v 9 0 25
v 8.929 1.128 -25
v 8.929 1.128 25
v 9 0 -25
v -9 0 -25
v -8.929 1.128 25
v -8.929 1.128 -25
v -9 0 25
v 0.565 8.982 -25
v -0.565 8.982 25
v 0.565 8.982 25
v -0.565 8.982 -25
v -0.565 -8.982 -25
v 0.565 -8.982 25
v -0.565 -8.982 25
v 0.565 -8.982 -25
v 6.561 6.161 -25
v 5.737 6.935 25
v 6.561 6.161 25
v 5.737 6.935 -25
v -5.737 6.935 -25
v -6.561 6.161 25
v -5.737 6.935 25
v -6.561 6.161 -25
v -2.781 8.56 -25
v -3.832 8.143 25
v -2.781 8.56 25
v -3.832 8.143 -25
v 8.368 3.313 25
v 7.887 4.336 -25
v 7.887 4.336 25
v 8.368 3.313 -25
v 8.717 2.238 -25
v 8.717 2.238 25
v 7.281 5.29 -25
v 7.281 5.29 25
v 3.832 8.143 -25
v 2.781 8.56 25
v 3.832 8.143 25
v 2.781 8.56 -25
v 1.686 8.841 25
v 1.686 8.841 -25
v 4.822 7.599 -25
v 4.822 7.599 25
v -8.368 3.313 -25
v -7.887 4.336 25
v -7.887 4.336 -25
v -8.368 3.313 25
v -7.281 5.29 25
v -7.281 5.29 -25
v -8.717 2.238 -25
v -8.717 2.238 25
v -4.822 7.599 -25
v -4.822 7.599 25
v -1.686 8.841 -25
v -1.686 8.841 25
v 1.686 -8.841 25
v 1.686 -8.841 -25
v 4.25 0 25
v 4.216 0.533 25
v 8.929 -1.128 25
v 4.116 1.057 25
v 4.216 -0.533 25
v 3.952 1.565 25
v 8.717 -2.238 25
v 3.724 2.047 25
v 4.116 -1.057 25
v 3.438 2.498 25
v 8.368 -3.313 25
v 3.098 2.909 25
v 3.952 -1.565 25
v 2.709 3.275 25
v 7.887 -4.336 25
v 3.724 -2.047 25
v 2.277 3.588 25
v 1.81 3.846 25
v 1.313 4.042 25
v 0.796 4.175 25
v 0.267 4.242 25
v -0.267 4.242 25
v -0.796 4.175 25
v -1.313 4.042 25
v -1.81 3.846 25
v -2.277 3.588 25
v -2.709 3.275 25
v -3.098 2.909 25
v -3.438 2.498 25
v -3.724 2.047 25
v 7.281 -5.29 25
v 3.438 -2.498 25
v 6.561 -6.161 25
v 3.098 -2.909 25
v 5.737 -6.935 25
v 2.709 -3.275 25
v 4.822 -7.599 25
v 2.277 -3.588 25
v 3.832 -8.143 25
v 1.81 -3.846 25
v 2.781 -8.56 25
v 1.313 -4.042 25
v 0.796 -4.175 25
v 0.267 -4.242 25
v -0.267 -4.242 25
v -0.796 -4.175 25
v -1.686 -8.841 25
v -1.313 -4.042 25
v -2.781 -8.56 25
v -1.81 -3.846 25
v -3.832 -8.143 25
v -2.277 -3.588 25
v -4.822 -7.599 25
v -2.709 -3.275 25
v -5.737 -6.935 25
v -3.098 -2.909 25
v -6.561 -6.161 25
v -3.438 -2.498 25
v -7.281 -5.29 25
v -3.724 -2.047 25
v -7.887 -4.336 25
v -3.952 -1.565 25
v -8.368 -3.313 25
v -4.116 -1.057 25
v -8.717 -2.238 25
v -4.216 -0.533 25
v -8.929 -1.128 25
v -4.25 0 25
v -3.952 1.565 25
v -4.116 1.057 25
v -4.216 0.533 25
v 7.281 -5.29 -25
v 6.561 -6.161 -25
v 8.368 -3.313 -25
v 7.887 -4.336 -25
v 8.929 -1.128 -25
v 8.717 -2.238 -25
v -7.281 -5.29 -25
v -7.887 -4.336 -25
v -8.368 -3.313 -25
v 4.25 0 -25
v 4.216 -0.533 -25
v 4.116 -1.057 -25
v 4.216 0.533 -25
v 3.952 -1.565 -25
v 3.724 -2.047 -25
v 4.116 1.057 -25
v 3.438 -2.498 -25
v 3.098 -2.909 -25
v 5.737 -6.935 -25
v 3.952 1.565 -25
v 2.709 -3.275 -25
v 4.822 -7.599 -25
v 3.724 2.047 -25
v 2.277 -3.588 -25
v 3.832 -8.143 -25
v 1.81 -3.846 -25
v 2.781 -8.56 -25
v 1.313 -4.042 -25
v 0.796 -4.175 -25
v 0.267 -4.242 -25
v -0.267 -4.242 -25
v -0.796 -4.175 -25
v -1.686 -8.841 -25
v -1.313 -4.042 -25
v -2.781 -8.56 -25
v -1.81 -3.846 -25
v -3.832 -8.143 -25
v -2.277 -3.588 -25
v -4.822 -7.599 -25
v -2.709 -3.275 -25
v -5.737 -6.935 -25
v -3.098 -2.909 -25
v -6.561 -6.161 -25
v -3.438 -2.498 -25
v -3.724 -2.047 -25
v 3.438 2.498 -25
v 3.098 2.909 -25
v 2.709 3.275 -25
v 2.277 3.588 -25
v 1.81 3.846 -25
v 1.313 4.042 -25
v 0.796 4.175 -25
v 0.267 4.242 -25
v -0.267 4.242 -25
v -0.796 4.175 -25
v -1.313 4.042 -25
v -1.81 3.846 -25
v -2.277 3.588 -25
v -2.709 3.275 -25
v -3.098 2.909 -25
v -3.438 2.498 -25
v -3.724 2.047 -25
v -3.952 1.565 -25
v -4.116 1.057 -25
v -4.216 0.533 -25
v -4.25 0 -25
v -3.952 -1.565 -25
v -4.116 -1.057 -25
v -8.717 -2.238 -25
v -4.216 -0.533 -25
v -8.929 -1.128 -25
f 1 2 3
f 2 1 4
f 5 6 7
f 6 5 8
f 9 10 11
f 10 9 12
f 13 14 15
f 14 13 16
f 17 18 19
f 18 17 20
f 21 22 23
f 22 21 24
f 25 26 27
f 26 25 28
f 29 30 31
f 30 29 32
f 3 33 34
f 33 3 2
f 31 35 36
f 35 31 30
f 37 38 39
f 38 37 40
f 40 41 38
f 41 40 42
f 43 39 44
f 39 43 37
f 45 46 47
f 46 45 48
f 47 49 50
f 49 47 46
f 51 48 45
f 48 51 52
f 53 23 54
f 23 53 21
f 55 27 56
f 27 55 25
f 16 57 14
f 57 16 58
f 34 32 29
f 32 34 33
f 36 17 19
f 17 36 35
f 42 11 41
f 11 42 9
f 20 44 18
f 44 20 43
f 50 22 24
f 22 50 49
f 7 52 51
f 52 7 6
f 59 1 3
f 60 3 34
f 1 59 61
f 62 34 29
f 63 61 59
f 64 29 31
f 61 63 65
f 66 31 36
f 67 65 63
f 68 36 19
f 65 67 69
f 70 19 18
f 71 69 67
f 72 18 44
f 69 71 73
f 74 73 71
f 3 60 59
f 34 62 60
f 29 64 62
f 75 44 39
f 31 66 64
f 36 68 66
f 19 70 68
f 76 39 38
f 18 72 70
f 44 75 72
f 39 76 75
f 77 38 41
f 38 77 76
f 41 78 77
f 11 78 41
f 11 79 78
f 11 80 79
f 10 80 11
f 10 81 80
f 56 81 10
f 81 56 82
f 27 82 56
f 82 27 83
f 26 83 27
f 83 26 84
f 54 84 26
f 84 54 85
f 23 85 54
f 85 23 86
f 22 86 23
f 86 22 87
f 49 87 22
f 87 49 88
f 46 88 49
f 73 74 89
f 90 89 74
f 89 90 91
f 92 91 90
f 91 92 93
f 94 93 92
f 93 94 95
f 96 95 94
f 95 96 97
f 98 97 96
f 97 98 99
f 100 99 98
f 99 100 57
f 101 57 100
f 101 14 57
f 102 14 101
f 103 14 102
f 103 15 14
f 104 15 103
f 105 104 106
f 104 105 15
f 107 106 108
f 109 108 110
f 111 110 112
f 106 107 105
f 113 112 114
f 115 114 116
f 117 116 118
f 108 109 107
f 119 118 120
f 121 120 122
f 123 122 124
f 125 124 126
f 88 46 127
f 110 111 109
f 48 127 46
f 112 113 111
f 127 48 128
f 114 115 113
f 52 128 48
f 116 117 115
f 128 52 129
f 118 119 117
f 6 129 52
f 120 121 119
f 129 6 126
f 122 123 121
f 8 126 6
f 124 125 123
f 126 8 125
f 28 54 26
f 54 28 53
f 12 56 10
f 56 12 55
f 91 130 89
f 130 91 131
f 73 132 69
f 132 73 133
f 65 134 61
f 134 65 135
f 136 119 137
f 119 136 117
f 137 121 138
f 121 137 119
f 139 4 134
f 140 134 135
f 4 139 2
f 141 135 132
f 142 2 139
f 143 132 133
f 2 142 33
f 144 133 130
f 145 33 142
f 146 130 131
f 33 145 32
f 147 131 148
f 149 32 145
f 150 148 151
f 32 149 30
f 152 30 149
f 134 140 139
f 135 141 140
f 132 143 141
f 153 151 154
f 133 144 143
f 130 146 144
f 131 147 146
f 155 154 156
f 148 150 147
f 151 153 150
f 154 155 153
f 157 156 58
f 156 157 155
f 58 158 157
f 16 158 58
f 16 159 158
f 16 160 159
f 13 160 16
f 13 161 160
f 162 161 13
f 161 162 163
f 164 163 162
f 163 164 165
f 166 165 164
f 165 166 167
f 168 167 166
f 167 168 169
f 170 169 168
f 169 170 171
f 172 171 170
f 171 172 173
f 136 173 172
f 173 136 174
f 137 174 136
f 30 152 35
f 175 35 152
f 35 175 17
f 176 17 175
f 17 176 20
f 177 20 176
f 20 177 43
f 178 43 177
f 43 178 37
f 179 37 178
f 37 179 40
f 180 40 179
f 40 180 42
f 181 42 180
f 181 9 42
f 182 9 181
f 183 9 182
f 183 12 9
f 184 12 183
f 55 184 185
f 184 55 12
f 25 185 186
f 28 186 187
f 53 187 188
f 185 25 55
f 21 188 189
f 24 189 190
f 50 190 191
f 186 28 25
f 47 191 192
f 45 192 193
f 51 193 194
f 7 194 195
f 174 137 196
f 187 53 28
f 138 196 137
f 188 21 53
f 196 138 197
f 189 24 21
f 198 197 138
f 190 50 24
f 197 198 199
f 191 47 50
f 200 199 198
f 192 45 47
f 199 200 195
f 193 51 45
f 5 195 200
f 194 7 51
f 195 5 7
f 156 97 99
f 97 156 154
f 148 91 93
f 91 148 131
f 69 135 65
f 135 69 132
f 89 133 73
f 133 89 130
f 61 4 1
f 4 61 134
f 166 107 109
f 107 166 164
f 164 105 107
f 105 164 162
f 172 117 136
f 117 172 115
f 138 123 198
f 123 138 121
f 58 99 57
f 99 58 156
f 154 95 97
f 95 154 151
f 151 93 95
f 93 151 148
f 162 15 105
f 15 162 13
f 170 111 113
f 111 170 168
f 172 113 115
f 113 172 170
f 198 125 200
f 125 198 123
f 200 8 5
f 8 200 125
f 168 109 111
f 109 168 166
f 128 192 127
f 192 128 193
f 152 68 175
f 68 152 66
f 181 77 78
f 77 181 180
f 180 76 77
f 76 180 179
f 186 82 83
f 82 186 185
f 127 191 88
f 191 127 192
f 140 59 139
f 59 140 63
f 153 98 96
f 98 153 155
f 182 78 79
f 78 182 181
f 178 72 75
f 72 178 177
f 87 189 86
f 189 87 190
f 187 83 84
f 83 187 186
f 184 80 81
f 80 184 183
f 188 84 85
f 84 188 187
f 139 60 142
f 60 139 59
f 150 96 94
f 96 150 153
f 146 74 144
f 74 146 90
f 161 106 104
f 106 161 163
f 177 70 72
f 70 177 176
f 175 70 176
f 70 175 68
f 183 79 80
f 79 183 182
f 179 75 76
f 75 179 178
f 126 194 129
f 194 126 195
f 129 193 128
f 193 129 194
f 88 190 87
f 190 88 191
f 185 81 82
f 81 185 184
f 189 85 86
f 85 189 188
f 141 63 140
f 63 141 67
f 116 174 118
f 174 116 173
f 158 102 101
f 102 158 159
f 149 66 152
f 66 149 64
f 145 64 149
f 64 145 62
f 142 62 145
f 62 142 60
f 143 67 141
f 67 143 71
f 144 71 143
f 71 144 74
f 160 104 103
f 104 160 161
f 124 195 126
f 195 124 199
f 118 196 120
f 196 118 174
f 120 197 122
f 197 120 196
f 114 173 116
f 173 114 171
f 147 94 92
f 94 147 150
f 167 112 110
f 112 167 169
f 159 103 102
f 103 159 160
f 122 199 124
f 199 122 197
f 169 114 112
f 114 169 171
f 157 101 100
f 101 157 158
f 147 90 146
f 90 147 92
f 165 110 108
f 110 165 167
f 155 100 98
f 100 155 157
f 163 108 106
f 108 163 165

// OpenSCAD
$fn = 50;


difference() {
	union() {
		translate(v = [0, 0, -25.0000000000]) {
			cylinder(h = 50, r = 9.0000000000);
		}
	}
	union() {
		translate(v = [0, 0, -100.0000000000]) {
			cylinder(h = 200, r = 4.2500000000);
		}
	}
}
